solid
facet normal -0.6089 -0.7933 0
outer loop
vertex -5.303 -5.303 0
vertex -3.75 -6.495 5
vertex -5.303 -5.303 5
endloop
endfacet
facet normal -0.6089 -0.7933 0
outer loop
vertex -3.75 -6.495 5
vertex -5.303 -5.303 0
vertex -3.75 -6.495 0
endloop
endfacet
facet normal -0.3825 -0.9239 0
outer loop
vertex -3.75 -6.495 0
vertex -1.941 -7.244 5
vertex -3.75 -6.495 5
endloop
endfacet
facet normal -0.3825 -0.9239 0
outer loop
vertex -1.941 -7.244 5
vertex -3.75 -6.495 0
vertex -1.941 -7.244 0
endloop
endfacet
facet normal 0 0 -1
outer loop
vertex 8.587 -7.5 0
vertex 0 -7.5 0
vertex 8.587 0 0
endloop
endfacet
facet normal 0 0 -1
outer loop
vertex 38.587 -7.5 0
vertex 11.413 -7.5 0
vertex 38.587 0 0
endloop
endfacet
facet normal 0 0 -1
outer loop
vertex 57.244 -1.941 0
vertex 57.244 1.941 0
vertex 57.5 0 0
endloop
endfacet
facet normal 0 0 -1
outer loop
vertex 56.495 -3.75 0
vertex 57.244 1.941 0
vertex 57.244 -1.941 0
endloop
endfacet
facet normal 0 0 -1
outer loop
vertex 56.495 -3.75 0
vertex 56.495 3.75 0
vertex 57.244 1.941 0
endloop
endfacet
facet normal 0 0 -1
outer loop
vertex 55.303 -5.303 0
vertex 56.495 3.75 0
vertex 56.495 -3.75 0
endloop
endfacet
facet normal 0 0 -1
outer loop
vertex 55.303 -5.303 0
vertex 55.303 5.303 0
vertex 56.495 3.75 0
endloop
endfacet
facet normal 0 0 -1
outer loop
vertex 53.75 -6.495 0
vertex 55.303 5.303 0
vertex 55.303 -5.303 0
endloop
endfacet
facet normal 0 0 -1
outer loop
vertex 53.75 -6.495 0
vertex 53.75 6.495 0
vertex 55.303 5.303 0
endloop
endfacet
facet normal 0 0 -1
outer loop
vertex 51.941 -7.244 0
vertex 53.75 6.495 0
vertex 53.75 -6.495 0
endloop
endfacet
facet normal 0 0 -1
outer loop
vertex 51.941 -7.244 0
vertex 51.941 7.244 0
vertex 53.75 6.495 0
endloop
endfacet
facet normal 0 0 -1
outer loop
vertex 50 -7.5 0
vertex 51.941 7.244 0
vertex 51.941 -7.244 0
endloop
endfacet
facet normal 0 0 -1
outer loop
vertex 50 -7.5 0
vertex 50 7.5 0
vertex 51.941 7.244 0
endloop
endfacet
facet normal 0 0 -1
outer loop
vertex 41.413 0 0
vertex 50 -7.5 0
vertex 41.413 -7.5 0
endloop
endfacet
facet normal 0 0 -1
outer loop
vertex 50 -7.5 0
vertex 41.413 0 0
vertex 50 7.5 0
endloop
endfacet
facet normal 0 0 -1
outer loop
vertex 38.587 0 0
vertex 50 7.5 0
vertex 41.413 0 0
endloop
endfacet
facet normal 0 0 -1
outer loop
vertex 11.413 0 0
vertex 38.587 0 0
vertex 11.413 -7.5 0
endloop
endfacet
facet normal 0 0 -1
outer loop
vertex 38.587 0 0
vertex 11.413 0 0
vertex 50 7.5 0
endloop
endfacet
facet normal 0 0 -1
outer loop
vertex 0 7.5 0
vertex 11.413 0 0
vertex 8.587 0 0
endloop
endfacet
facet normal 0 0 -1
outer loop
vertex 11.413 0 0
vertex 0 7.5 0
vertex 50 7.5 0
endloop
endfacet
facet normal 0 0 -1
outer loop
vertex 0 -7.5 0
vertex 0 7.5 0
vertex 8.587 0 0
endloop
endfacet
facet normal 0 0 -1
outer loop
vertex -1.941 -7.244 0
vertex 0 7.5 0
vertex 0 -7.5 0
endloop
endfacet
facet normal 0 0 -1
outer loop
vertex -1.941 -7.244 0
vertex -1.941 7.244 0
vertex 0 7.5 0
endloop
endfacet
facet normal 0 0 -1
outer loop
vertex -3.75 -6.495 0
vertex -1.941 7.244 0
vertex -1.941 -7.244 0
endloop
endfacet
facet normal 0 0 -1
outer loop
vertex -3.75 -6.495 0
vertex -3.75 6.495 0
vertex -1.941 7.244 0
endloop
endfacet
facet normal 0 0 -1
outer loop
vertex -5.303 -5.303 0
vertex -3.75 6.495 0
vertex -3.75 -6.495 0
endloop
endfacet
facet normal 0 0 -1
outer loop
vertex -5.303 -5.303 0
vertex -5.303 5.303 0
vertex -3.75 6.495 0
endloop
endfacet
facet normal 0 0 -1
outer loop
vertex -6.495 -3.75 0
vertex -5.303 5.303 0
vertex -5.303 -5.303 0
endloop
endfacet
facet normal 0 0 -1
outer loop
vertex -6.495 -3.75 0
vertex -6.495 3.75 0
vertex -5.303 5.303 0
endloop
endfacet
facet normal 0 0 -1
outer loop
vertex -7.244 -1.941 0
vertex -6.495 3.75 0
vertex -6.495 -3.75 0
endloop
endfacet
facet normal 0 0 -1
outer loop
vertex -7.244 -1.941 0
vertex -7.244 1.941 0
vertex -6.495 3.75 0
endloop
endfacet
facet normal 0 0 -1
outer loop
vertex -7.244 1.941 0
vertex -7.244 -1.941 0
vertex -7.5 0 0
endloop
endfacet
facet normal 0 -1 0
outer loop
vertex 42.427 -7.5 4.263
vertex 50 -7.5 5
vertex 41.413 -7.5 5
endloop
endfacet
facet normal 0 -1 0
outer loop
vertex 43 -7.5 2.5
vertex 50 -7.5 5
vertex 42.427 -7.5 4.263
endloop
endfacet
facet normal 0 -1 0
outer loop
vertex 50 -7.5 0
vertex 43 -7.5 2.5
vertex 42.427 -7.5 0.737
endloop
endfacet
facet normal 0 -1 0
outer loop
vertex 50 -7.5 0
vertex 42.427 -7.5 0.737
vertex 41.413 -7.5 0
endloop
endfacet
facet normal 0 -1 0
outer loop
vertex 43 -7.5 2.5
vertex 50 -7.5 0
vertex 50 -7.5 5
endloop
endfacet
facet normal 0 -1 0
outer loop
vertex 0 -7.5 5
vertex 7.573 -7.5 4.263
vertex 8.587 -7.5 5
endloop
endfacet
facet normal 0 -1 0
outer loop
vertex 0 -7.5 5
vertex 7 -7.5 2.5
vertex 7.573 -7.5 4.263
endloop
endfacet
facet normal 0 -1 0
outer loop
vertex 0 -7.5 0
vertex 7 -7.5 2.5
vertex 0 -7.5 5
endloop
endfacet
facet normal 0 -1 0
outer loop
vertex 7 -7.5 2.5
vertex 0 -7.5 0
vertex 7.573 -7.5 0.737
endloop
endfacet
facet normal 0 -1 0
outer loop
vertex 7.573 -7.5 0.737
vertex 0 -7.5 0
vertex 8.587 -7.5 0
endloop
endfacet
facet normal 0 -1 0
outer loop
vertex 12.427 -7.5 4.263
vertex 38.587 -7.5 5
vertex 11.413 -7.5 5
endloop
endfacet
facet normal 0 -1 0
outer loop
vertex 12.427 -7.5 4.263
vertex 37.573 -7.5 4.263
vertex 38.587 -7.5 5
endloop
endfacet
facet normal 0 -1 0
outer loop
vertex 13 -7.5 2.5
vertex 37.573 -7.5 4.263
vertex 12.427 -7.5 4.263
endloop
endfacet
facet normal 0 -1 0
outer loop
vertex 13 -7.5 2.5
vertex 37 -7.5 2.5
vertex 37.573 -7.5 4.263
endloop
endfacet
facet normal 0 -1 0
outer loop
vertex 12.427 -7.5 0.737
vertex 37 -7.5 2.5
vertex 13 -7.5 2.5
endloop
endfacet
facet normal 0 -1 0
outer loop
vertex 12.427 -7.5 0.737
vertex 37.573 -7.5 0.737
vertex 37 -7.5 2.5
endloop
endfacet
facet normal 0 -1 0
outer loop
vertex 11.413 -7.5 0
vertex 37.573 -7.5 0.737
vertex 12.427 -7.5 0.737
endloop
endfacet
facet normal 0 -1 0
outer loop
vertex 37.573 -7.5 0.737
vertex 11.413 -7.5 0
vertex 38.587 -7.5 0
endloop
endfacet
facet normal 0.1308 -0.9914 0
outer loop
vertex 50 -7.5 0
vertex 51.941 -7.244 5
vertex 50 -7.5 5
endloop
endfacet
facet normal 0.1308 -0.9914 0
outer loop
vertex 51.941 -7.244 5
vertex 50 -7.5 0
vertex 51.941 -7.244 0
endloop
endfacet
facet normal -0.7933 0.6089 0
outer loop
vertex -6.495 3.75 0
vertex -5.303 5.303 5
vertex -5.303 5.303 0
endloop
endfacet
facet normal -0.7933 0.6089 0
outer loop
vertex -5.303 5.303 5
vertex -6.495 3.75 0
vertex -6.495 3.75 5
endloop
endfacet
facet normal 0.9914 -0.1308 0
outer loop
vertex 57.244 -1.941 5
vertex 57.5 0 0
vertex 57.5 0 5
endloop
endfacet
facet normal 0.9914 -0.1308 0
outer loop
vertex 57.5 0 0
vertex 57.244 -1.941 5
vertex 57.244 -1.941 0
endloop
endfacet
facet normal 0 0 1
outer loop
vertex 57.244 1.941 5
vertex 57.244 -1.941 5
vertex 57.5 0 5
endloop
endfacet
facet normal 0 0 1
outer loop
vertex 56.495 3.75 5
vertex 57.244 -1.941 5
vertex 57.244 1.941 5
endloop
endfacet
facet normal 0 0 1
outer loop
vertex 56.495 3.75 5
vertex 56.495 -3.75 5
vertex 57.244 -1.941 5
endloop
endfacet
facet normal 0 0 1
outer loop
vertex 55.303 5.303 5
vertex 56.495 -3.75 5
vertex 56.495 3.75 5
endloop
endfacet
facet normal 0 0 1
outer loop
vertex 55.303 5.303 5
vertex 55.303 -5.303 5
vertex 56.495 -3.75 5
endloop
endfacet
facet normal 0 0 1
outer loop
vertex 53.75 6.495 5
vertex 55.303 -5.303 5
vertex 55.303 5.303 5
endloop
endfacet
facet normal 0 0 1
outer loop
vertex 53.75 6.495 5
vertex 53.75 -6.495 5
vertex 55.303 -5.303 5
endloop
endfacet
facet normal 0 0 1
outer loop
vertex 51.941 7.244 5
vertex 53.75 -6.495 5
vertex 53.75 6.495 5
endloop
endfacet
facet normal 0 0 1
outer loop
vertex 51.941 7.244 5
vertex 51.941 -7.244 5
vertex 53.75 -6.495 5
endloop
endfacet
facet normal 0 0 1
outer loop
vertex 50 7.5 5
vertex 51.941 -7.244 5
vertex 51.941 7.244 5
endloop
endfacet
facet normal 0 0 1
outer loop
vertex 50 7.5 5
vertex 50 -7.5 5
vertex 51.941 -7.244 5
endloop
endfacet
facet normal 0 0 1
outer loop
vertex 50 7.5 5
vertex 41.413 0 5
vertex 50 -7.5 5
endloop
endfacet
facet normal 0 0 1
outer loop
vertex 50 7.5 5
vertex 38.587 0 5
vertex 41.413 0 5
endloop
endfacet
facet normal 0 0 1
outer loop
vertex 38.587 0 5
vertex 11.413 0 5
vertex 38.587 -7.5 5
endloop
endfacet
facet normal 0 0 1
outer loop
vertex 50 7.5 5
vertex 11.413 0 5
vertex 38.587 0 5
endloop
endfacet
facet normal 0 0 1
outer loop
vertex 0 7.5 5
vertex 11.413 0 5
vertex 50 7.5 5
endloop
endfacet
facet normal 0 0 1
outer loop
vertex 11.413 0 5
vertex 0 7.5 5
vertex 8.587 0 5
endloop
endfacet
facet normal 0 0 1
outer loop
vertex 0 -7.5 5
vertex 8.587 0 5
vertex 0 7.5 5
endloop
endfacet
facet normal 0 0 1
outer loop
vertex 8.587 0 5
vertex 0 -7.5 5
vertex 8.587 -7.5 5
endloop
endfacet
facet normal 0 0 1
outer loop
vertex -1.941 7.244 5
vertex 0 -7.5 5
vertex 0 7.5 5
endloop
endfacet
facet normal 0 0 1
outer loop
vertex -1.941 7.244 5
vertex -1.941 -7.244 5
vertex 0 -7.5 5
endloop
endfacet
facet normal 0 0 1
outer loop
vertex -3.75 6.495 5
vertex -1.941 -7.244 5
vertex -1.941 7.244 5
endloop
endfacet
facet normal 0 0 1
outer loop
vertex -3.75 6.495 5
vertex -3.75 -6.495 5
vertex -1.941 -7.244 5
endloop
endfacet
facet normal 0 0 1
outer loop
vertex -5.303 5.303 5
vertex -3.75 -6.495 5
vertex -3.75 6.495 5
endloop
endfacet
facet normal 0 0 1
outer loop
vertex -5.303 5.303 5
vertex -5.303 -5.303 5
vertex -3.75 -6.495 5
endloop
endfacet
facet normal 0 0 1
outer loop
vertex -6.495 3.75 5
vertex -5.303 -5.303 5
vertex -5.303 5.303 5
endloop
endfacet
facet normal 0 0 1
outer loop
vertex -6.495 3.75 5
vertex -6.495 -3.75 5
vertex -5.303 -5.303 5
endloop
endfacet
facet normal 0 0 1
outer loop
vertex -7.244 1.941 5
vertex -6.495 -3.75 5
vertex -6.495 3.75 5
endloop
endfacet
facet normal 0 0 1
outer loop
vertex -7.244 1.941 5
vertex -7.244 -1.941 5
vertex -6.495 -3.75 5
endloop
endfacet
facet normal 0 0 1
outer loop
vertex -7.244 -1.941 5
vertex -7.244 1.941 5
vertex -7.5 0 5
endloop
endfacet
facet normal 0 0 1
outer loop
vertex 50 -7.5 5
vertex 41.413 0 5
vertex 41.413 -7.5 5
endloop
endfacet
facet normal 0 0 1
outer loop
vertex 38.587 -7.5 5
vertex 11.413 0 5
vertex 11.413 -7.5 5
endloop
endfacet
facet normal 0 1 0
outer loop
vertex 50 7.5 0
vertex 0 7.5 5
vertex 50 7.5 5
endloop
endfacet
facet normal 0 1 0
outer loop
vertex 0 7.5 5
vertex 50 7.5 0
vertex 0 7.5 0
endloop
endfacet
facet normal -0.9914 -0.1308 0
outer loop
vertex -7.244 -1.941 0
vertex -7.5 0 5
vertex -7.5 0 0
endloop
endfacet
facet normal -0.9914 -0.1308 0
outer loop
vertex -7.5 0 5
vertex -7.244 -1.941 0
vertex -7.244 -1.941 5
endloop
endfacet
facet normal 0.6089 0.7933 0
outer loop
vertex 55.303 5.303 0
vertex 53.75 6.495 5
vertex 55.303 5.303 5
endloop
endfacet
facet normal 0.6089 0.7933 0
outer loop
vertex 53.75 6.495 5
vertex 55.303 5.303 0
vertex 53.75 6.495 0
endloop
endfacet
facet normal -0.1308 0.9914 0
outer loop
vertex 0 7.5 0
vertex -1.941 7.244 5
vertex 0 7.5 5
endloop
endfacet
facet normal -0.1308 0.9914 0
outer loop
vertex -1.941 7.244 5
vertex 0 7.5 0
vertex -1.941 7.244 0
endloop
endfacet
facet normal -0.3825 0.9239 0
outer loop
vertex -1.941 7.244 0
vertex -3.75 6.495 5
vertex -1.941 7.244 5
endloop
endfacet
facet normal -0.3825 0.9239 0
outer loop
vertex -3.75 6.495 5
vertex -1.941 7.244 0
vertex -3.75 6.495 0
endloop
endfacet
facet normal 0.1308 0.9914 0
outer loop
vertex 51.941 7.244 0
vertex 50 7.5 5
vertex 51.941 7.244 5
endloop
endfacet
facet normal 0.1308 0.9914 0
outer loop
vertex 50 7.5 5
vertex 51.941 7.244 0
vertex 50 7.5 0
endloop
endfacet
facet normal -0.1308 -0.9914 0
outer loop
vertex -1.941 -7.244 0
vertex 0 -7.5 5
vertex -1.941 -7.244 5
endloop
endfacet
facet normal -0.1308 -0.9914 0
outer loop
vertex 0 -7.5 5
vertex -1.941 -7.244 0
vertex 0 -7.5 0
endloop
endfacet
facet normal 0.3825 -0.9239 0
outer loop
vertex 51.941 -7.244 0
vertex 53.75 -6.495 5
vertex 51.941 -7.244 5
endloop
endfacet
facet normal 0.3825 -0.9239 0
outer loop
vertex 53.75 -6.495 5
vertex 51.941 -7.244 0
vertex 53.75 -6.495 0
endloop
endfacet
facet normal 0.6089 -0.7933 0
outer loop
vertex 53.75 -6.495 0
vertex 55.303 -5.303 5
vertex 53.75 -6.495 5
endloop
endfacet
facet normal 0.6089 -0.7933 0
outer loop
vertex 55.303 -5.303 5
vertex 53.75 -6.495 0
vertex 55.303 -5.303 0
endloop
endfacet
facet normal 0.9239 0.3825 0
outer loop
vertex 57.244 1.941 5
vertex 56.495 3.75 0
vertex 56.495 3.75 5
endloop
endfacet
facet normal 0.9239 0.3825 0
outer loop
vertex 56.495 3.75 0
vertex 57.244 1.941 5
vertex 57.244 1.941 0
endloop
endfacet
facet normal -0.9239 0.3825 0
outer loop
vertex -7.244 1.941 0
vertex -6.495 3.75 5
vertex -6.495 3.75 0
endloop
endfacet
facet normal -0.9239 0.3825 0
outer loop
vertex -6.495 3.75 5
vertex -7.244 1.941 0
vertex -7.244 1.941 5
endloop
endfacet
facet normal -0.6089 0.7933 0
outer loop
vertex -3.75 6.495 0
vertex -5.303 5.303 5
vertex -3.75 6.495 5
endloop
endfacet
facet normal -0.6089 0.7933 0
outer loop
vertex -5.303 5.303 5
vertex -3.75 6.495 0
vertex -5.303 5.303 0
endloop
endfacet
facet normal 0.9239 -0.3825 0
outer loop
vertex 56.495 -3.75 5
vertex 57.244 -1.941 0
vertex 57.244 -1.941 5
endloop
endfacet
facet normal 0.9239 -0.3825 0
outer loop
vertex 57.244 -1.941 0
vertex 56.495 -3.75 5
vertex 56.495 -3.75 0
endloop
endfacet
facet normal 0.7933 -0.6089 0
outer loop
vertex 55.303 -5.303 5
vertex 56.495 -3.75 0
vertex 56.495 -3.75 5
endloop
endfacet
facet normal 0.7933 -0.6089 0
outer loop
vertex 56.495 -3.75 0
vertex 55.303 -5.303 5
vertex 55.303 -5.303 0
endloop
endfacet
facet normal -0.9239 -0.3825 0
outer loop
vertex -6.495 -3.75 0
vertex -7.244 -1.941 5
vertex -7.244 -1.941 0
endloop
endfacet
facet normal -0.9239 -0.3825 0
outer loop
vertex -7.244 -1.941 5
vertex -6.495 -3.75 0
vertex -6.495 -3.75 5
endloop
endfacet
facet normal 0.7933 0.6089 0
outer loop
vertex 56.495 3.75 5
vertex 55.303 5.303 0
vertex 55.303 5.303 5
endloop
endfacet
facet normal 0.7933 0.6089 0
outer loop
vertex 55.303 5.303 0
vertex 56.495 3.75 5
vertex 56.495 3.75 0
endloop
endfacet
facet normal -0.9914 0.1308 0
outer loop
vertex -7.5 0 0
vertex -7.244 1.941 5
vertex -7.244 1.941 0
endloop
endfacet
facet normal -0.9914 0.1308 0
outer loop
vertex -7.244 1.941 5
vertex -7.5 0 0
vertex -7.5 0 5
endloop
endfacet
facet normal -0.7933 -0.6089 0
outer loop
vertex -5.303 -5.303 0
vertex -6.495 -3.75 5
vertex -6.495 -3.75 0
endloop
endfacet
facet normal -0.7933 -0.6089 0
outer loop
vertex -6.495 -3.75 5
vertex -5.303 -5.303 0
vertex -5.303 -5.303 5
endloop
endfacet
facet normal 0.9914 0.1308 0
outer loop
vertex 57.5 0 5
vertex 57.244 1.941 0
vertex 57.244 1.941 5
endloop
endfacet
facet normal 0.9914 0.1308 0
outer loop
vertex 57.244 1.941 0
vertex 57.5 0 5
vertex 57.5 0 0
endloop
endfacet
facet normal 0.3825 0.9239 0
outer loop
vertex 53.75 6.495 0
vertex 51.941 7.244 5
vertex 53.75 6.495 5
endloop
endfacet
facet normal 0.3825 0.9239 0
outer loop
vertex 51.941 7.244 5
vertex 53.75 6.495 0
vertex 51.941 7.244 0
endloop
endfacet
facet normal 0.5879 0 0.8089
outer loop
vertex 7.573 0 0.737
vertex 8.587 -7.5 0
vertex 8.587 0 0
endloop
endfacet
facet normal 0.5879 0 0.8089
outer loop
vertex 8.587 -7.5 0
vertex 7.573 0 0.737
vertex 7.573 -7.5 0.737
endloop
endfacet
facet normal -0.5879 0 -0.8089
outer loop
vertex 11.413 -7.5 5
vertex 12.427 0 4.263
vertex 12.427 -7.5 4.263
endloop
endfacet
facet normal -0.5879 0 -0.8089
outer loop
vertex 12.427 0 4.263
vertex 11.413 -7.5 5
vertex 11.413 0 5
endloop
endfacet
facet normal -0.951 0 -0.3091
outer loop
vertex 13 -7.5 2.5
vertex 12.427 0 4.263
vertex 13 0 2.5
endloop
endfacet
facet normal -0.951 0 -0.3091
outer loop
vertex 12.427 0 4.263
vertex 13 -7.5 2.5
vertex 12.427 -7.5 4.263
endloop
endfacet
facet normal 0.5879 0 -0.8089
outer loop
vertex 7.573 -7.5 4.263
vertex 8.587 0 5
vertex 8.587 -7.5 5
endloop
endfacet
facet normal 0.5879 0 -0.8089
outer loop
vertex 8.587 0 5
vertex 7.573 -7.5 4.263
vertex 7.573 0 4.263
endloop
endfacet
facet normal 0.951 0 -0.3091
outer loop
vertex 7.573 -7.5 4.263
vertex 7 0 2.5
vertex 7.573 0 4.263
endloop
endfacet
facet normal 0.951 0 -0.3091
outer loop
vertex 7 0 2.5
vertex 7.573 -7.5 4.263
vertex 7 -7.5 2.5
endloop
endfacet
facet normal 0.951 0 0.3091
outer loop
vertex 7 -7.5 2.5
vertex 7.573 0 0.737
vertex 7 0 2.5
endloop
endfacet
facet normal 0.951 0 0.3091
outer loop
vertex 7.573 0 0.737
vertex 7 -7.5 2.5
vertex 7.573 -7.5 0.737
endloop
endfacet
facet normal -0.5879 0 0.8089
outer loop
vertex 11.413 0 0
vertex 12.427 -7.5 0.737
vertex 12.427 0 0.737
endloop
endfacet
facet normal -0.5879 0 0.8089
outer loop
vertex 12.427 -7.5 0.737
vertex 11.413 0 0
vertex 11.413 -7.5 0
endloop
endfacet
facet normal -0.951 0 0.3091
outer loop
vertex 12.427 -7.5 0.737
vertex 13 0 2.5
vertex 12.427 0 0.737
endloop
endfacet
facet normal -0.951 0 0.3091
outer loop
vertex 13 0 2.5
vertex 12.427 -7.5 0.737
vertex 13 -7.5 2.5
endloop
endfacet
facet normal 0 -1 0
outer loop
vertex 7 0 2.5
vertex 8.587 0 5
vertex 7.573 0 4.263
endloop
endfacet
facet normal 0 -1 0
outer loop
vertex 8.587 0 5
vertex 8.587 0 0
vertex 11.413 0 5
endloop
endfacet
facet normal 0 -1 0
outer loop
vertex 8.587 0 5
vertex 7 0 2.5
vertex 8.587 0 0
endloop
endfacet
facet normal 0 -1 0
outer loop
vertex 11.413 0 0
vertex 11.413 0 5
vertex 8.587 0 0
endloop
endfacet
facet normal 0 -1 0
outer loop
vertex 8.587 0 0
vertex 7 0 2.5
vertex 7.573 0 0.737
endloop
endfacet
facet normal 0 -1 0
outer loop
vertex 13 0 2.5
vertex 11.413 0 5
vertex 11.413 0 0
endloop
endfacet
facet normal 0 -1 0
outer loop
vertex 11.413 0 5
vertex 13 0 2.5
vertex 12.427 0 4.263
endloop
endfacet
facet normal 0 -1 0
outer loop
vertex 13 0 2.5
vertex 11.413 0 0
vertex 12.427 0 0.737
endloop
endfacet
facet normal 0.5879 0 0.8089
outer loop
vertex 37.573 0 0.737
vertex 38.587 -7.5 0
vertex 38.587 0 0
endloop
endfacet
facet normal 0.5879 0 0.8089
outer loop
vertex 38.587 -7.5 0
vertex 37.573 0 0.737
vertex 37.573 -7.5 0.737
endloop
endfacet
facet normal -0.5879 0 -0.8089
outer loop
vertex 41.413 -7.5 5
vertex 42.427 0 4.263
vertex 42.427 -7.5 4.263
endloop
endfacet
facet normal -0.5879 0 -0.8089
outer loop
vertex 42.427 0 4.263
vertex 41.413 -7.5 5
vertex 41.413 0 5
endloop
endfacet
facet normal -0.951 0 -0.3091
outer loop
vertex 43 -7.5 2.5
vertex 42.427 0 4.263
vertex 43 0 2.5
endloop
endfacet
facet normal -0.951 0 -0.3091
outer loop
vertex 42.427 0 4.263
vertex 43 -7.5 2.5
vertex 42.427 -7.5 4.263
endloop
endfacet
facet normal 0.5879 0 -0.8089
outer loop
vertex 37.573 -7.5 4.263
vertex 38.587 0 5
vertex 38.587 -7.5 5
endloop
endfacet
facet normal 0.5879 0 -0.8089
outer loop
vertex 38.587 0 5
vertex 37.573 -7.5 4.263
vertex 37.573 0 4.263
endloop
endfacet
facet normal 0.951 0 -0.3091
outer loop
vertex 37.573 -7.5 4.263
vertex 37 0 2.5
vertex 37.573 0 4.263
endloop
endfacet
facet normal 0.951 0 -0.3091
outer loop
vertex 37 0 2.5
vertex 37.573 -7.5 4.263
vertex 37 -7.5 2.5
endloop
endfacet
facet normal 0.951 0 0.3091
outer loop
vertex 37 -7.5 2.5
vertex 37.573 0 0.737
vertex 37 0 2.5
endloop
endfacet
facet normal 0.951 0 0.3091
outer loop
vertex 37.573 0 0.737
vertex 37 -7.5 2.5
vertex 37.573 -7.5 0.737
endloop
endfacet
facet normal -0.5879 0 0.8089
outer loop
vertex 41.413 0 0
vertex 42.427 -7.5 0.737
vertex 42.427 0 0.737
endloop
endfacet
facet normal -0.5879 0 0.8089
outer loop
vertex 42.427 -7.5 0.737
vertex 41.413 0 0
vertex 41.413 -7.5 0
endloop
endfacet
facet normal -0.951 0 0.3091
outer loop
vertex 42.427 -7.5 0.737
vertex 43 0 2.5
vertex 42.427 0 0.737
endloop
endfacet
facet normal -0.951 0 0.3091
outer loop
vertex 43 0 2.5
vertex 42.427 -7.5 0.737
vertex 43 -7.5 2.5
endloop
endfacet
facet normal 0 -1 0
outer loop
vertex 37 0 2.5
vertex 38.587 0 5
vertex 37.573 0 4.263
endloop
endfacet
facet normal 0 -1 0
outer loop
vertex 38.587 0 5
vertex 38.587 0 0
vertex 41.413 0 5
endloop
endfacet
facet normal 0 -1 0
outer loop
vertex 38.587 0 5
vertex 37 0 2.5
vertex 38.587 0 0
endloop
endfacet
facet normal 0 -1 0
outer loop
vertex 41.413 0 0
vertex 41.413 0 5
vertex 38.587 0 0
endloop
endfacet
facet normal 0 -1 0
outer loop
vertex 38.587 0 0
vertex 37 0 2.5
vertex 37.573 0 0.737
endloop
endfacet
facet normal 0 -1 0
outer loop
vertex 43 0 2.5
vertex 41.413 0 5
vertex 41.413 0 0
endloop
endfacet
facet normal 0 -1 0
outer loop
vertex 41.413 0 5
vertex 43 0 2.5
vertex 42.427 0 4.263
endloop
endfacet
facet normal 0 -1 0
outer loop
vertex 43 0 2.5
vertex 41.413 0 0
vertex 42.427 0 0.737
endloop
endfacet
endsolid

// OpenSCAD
module link_plate() {
    // Dimensions
    plate_length = 50; // Length of the plate
    plate_width = 15;  // Width of the plate
    plate_thickness = 5; // Thickness of the plate
    hole_diameter = 6; // Diameter of the holes
    hole_offset = 10; // Distance from the center of the holes to the ends of the plate

    // Create the main body of the plate
    difference() {
        // Rounded rectangle
        hull() {
            translate([0, 0, 0]) 
                cylinder(r=plate_width/2, h=plate_thickness);
            translate([plate_length, 0, 0]) 
                cylinder(r=plate_width/2, h=plate_thickness);
        }
        // Subtract holes
        translate([hole_offset, 0, plate_thickness/2])
            rotate([90, 0, 0])
                cylinder(r=hole_diameter/2, h=plate_width+1);
        translate([plate_length - hole_offset, 0, plate_thickness/2])
            rotate([90, 0, 0])
                cylinder(r=hole_diameter/2, h=plate_width+1);
    }
}

// Render the link plate
link_plate();
